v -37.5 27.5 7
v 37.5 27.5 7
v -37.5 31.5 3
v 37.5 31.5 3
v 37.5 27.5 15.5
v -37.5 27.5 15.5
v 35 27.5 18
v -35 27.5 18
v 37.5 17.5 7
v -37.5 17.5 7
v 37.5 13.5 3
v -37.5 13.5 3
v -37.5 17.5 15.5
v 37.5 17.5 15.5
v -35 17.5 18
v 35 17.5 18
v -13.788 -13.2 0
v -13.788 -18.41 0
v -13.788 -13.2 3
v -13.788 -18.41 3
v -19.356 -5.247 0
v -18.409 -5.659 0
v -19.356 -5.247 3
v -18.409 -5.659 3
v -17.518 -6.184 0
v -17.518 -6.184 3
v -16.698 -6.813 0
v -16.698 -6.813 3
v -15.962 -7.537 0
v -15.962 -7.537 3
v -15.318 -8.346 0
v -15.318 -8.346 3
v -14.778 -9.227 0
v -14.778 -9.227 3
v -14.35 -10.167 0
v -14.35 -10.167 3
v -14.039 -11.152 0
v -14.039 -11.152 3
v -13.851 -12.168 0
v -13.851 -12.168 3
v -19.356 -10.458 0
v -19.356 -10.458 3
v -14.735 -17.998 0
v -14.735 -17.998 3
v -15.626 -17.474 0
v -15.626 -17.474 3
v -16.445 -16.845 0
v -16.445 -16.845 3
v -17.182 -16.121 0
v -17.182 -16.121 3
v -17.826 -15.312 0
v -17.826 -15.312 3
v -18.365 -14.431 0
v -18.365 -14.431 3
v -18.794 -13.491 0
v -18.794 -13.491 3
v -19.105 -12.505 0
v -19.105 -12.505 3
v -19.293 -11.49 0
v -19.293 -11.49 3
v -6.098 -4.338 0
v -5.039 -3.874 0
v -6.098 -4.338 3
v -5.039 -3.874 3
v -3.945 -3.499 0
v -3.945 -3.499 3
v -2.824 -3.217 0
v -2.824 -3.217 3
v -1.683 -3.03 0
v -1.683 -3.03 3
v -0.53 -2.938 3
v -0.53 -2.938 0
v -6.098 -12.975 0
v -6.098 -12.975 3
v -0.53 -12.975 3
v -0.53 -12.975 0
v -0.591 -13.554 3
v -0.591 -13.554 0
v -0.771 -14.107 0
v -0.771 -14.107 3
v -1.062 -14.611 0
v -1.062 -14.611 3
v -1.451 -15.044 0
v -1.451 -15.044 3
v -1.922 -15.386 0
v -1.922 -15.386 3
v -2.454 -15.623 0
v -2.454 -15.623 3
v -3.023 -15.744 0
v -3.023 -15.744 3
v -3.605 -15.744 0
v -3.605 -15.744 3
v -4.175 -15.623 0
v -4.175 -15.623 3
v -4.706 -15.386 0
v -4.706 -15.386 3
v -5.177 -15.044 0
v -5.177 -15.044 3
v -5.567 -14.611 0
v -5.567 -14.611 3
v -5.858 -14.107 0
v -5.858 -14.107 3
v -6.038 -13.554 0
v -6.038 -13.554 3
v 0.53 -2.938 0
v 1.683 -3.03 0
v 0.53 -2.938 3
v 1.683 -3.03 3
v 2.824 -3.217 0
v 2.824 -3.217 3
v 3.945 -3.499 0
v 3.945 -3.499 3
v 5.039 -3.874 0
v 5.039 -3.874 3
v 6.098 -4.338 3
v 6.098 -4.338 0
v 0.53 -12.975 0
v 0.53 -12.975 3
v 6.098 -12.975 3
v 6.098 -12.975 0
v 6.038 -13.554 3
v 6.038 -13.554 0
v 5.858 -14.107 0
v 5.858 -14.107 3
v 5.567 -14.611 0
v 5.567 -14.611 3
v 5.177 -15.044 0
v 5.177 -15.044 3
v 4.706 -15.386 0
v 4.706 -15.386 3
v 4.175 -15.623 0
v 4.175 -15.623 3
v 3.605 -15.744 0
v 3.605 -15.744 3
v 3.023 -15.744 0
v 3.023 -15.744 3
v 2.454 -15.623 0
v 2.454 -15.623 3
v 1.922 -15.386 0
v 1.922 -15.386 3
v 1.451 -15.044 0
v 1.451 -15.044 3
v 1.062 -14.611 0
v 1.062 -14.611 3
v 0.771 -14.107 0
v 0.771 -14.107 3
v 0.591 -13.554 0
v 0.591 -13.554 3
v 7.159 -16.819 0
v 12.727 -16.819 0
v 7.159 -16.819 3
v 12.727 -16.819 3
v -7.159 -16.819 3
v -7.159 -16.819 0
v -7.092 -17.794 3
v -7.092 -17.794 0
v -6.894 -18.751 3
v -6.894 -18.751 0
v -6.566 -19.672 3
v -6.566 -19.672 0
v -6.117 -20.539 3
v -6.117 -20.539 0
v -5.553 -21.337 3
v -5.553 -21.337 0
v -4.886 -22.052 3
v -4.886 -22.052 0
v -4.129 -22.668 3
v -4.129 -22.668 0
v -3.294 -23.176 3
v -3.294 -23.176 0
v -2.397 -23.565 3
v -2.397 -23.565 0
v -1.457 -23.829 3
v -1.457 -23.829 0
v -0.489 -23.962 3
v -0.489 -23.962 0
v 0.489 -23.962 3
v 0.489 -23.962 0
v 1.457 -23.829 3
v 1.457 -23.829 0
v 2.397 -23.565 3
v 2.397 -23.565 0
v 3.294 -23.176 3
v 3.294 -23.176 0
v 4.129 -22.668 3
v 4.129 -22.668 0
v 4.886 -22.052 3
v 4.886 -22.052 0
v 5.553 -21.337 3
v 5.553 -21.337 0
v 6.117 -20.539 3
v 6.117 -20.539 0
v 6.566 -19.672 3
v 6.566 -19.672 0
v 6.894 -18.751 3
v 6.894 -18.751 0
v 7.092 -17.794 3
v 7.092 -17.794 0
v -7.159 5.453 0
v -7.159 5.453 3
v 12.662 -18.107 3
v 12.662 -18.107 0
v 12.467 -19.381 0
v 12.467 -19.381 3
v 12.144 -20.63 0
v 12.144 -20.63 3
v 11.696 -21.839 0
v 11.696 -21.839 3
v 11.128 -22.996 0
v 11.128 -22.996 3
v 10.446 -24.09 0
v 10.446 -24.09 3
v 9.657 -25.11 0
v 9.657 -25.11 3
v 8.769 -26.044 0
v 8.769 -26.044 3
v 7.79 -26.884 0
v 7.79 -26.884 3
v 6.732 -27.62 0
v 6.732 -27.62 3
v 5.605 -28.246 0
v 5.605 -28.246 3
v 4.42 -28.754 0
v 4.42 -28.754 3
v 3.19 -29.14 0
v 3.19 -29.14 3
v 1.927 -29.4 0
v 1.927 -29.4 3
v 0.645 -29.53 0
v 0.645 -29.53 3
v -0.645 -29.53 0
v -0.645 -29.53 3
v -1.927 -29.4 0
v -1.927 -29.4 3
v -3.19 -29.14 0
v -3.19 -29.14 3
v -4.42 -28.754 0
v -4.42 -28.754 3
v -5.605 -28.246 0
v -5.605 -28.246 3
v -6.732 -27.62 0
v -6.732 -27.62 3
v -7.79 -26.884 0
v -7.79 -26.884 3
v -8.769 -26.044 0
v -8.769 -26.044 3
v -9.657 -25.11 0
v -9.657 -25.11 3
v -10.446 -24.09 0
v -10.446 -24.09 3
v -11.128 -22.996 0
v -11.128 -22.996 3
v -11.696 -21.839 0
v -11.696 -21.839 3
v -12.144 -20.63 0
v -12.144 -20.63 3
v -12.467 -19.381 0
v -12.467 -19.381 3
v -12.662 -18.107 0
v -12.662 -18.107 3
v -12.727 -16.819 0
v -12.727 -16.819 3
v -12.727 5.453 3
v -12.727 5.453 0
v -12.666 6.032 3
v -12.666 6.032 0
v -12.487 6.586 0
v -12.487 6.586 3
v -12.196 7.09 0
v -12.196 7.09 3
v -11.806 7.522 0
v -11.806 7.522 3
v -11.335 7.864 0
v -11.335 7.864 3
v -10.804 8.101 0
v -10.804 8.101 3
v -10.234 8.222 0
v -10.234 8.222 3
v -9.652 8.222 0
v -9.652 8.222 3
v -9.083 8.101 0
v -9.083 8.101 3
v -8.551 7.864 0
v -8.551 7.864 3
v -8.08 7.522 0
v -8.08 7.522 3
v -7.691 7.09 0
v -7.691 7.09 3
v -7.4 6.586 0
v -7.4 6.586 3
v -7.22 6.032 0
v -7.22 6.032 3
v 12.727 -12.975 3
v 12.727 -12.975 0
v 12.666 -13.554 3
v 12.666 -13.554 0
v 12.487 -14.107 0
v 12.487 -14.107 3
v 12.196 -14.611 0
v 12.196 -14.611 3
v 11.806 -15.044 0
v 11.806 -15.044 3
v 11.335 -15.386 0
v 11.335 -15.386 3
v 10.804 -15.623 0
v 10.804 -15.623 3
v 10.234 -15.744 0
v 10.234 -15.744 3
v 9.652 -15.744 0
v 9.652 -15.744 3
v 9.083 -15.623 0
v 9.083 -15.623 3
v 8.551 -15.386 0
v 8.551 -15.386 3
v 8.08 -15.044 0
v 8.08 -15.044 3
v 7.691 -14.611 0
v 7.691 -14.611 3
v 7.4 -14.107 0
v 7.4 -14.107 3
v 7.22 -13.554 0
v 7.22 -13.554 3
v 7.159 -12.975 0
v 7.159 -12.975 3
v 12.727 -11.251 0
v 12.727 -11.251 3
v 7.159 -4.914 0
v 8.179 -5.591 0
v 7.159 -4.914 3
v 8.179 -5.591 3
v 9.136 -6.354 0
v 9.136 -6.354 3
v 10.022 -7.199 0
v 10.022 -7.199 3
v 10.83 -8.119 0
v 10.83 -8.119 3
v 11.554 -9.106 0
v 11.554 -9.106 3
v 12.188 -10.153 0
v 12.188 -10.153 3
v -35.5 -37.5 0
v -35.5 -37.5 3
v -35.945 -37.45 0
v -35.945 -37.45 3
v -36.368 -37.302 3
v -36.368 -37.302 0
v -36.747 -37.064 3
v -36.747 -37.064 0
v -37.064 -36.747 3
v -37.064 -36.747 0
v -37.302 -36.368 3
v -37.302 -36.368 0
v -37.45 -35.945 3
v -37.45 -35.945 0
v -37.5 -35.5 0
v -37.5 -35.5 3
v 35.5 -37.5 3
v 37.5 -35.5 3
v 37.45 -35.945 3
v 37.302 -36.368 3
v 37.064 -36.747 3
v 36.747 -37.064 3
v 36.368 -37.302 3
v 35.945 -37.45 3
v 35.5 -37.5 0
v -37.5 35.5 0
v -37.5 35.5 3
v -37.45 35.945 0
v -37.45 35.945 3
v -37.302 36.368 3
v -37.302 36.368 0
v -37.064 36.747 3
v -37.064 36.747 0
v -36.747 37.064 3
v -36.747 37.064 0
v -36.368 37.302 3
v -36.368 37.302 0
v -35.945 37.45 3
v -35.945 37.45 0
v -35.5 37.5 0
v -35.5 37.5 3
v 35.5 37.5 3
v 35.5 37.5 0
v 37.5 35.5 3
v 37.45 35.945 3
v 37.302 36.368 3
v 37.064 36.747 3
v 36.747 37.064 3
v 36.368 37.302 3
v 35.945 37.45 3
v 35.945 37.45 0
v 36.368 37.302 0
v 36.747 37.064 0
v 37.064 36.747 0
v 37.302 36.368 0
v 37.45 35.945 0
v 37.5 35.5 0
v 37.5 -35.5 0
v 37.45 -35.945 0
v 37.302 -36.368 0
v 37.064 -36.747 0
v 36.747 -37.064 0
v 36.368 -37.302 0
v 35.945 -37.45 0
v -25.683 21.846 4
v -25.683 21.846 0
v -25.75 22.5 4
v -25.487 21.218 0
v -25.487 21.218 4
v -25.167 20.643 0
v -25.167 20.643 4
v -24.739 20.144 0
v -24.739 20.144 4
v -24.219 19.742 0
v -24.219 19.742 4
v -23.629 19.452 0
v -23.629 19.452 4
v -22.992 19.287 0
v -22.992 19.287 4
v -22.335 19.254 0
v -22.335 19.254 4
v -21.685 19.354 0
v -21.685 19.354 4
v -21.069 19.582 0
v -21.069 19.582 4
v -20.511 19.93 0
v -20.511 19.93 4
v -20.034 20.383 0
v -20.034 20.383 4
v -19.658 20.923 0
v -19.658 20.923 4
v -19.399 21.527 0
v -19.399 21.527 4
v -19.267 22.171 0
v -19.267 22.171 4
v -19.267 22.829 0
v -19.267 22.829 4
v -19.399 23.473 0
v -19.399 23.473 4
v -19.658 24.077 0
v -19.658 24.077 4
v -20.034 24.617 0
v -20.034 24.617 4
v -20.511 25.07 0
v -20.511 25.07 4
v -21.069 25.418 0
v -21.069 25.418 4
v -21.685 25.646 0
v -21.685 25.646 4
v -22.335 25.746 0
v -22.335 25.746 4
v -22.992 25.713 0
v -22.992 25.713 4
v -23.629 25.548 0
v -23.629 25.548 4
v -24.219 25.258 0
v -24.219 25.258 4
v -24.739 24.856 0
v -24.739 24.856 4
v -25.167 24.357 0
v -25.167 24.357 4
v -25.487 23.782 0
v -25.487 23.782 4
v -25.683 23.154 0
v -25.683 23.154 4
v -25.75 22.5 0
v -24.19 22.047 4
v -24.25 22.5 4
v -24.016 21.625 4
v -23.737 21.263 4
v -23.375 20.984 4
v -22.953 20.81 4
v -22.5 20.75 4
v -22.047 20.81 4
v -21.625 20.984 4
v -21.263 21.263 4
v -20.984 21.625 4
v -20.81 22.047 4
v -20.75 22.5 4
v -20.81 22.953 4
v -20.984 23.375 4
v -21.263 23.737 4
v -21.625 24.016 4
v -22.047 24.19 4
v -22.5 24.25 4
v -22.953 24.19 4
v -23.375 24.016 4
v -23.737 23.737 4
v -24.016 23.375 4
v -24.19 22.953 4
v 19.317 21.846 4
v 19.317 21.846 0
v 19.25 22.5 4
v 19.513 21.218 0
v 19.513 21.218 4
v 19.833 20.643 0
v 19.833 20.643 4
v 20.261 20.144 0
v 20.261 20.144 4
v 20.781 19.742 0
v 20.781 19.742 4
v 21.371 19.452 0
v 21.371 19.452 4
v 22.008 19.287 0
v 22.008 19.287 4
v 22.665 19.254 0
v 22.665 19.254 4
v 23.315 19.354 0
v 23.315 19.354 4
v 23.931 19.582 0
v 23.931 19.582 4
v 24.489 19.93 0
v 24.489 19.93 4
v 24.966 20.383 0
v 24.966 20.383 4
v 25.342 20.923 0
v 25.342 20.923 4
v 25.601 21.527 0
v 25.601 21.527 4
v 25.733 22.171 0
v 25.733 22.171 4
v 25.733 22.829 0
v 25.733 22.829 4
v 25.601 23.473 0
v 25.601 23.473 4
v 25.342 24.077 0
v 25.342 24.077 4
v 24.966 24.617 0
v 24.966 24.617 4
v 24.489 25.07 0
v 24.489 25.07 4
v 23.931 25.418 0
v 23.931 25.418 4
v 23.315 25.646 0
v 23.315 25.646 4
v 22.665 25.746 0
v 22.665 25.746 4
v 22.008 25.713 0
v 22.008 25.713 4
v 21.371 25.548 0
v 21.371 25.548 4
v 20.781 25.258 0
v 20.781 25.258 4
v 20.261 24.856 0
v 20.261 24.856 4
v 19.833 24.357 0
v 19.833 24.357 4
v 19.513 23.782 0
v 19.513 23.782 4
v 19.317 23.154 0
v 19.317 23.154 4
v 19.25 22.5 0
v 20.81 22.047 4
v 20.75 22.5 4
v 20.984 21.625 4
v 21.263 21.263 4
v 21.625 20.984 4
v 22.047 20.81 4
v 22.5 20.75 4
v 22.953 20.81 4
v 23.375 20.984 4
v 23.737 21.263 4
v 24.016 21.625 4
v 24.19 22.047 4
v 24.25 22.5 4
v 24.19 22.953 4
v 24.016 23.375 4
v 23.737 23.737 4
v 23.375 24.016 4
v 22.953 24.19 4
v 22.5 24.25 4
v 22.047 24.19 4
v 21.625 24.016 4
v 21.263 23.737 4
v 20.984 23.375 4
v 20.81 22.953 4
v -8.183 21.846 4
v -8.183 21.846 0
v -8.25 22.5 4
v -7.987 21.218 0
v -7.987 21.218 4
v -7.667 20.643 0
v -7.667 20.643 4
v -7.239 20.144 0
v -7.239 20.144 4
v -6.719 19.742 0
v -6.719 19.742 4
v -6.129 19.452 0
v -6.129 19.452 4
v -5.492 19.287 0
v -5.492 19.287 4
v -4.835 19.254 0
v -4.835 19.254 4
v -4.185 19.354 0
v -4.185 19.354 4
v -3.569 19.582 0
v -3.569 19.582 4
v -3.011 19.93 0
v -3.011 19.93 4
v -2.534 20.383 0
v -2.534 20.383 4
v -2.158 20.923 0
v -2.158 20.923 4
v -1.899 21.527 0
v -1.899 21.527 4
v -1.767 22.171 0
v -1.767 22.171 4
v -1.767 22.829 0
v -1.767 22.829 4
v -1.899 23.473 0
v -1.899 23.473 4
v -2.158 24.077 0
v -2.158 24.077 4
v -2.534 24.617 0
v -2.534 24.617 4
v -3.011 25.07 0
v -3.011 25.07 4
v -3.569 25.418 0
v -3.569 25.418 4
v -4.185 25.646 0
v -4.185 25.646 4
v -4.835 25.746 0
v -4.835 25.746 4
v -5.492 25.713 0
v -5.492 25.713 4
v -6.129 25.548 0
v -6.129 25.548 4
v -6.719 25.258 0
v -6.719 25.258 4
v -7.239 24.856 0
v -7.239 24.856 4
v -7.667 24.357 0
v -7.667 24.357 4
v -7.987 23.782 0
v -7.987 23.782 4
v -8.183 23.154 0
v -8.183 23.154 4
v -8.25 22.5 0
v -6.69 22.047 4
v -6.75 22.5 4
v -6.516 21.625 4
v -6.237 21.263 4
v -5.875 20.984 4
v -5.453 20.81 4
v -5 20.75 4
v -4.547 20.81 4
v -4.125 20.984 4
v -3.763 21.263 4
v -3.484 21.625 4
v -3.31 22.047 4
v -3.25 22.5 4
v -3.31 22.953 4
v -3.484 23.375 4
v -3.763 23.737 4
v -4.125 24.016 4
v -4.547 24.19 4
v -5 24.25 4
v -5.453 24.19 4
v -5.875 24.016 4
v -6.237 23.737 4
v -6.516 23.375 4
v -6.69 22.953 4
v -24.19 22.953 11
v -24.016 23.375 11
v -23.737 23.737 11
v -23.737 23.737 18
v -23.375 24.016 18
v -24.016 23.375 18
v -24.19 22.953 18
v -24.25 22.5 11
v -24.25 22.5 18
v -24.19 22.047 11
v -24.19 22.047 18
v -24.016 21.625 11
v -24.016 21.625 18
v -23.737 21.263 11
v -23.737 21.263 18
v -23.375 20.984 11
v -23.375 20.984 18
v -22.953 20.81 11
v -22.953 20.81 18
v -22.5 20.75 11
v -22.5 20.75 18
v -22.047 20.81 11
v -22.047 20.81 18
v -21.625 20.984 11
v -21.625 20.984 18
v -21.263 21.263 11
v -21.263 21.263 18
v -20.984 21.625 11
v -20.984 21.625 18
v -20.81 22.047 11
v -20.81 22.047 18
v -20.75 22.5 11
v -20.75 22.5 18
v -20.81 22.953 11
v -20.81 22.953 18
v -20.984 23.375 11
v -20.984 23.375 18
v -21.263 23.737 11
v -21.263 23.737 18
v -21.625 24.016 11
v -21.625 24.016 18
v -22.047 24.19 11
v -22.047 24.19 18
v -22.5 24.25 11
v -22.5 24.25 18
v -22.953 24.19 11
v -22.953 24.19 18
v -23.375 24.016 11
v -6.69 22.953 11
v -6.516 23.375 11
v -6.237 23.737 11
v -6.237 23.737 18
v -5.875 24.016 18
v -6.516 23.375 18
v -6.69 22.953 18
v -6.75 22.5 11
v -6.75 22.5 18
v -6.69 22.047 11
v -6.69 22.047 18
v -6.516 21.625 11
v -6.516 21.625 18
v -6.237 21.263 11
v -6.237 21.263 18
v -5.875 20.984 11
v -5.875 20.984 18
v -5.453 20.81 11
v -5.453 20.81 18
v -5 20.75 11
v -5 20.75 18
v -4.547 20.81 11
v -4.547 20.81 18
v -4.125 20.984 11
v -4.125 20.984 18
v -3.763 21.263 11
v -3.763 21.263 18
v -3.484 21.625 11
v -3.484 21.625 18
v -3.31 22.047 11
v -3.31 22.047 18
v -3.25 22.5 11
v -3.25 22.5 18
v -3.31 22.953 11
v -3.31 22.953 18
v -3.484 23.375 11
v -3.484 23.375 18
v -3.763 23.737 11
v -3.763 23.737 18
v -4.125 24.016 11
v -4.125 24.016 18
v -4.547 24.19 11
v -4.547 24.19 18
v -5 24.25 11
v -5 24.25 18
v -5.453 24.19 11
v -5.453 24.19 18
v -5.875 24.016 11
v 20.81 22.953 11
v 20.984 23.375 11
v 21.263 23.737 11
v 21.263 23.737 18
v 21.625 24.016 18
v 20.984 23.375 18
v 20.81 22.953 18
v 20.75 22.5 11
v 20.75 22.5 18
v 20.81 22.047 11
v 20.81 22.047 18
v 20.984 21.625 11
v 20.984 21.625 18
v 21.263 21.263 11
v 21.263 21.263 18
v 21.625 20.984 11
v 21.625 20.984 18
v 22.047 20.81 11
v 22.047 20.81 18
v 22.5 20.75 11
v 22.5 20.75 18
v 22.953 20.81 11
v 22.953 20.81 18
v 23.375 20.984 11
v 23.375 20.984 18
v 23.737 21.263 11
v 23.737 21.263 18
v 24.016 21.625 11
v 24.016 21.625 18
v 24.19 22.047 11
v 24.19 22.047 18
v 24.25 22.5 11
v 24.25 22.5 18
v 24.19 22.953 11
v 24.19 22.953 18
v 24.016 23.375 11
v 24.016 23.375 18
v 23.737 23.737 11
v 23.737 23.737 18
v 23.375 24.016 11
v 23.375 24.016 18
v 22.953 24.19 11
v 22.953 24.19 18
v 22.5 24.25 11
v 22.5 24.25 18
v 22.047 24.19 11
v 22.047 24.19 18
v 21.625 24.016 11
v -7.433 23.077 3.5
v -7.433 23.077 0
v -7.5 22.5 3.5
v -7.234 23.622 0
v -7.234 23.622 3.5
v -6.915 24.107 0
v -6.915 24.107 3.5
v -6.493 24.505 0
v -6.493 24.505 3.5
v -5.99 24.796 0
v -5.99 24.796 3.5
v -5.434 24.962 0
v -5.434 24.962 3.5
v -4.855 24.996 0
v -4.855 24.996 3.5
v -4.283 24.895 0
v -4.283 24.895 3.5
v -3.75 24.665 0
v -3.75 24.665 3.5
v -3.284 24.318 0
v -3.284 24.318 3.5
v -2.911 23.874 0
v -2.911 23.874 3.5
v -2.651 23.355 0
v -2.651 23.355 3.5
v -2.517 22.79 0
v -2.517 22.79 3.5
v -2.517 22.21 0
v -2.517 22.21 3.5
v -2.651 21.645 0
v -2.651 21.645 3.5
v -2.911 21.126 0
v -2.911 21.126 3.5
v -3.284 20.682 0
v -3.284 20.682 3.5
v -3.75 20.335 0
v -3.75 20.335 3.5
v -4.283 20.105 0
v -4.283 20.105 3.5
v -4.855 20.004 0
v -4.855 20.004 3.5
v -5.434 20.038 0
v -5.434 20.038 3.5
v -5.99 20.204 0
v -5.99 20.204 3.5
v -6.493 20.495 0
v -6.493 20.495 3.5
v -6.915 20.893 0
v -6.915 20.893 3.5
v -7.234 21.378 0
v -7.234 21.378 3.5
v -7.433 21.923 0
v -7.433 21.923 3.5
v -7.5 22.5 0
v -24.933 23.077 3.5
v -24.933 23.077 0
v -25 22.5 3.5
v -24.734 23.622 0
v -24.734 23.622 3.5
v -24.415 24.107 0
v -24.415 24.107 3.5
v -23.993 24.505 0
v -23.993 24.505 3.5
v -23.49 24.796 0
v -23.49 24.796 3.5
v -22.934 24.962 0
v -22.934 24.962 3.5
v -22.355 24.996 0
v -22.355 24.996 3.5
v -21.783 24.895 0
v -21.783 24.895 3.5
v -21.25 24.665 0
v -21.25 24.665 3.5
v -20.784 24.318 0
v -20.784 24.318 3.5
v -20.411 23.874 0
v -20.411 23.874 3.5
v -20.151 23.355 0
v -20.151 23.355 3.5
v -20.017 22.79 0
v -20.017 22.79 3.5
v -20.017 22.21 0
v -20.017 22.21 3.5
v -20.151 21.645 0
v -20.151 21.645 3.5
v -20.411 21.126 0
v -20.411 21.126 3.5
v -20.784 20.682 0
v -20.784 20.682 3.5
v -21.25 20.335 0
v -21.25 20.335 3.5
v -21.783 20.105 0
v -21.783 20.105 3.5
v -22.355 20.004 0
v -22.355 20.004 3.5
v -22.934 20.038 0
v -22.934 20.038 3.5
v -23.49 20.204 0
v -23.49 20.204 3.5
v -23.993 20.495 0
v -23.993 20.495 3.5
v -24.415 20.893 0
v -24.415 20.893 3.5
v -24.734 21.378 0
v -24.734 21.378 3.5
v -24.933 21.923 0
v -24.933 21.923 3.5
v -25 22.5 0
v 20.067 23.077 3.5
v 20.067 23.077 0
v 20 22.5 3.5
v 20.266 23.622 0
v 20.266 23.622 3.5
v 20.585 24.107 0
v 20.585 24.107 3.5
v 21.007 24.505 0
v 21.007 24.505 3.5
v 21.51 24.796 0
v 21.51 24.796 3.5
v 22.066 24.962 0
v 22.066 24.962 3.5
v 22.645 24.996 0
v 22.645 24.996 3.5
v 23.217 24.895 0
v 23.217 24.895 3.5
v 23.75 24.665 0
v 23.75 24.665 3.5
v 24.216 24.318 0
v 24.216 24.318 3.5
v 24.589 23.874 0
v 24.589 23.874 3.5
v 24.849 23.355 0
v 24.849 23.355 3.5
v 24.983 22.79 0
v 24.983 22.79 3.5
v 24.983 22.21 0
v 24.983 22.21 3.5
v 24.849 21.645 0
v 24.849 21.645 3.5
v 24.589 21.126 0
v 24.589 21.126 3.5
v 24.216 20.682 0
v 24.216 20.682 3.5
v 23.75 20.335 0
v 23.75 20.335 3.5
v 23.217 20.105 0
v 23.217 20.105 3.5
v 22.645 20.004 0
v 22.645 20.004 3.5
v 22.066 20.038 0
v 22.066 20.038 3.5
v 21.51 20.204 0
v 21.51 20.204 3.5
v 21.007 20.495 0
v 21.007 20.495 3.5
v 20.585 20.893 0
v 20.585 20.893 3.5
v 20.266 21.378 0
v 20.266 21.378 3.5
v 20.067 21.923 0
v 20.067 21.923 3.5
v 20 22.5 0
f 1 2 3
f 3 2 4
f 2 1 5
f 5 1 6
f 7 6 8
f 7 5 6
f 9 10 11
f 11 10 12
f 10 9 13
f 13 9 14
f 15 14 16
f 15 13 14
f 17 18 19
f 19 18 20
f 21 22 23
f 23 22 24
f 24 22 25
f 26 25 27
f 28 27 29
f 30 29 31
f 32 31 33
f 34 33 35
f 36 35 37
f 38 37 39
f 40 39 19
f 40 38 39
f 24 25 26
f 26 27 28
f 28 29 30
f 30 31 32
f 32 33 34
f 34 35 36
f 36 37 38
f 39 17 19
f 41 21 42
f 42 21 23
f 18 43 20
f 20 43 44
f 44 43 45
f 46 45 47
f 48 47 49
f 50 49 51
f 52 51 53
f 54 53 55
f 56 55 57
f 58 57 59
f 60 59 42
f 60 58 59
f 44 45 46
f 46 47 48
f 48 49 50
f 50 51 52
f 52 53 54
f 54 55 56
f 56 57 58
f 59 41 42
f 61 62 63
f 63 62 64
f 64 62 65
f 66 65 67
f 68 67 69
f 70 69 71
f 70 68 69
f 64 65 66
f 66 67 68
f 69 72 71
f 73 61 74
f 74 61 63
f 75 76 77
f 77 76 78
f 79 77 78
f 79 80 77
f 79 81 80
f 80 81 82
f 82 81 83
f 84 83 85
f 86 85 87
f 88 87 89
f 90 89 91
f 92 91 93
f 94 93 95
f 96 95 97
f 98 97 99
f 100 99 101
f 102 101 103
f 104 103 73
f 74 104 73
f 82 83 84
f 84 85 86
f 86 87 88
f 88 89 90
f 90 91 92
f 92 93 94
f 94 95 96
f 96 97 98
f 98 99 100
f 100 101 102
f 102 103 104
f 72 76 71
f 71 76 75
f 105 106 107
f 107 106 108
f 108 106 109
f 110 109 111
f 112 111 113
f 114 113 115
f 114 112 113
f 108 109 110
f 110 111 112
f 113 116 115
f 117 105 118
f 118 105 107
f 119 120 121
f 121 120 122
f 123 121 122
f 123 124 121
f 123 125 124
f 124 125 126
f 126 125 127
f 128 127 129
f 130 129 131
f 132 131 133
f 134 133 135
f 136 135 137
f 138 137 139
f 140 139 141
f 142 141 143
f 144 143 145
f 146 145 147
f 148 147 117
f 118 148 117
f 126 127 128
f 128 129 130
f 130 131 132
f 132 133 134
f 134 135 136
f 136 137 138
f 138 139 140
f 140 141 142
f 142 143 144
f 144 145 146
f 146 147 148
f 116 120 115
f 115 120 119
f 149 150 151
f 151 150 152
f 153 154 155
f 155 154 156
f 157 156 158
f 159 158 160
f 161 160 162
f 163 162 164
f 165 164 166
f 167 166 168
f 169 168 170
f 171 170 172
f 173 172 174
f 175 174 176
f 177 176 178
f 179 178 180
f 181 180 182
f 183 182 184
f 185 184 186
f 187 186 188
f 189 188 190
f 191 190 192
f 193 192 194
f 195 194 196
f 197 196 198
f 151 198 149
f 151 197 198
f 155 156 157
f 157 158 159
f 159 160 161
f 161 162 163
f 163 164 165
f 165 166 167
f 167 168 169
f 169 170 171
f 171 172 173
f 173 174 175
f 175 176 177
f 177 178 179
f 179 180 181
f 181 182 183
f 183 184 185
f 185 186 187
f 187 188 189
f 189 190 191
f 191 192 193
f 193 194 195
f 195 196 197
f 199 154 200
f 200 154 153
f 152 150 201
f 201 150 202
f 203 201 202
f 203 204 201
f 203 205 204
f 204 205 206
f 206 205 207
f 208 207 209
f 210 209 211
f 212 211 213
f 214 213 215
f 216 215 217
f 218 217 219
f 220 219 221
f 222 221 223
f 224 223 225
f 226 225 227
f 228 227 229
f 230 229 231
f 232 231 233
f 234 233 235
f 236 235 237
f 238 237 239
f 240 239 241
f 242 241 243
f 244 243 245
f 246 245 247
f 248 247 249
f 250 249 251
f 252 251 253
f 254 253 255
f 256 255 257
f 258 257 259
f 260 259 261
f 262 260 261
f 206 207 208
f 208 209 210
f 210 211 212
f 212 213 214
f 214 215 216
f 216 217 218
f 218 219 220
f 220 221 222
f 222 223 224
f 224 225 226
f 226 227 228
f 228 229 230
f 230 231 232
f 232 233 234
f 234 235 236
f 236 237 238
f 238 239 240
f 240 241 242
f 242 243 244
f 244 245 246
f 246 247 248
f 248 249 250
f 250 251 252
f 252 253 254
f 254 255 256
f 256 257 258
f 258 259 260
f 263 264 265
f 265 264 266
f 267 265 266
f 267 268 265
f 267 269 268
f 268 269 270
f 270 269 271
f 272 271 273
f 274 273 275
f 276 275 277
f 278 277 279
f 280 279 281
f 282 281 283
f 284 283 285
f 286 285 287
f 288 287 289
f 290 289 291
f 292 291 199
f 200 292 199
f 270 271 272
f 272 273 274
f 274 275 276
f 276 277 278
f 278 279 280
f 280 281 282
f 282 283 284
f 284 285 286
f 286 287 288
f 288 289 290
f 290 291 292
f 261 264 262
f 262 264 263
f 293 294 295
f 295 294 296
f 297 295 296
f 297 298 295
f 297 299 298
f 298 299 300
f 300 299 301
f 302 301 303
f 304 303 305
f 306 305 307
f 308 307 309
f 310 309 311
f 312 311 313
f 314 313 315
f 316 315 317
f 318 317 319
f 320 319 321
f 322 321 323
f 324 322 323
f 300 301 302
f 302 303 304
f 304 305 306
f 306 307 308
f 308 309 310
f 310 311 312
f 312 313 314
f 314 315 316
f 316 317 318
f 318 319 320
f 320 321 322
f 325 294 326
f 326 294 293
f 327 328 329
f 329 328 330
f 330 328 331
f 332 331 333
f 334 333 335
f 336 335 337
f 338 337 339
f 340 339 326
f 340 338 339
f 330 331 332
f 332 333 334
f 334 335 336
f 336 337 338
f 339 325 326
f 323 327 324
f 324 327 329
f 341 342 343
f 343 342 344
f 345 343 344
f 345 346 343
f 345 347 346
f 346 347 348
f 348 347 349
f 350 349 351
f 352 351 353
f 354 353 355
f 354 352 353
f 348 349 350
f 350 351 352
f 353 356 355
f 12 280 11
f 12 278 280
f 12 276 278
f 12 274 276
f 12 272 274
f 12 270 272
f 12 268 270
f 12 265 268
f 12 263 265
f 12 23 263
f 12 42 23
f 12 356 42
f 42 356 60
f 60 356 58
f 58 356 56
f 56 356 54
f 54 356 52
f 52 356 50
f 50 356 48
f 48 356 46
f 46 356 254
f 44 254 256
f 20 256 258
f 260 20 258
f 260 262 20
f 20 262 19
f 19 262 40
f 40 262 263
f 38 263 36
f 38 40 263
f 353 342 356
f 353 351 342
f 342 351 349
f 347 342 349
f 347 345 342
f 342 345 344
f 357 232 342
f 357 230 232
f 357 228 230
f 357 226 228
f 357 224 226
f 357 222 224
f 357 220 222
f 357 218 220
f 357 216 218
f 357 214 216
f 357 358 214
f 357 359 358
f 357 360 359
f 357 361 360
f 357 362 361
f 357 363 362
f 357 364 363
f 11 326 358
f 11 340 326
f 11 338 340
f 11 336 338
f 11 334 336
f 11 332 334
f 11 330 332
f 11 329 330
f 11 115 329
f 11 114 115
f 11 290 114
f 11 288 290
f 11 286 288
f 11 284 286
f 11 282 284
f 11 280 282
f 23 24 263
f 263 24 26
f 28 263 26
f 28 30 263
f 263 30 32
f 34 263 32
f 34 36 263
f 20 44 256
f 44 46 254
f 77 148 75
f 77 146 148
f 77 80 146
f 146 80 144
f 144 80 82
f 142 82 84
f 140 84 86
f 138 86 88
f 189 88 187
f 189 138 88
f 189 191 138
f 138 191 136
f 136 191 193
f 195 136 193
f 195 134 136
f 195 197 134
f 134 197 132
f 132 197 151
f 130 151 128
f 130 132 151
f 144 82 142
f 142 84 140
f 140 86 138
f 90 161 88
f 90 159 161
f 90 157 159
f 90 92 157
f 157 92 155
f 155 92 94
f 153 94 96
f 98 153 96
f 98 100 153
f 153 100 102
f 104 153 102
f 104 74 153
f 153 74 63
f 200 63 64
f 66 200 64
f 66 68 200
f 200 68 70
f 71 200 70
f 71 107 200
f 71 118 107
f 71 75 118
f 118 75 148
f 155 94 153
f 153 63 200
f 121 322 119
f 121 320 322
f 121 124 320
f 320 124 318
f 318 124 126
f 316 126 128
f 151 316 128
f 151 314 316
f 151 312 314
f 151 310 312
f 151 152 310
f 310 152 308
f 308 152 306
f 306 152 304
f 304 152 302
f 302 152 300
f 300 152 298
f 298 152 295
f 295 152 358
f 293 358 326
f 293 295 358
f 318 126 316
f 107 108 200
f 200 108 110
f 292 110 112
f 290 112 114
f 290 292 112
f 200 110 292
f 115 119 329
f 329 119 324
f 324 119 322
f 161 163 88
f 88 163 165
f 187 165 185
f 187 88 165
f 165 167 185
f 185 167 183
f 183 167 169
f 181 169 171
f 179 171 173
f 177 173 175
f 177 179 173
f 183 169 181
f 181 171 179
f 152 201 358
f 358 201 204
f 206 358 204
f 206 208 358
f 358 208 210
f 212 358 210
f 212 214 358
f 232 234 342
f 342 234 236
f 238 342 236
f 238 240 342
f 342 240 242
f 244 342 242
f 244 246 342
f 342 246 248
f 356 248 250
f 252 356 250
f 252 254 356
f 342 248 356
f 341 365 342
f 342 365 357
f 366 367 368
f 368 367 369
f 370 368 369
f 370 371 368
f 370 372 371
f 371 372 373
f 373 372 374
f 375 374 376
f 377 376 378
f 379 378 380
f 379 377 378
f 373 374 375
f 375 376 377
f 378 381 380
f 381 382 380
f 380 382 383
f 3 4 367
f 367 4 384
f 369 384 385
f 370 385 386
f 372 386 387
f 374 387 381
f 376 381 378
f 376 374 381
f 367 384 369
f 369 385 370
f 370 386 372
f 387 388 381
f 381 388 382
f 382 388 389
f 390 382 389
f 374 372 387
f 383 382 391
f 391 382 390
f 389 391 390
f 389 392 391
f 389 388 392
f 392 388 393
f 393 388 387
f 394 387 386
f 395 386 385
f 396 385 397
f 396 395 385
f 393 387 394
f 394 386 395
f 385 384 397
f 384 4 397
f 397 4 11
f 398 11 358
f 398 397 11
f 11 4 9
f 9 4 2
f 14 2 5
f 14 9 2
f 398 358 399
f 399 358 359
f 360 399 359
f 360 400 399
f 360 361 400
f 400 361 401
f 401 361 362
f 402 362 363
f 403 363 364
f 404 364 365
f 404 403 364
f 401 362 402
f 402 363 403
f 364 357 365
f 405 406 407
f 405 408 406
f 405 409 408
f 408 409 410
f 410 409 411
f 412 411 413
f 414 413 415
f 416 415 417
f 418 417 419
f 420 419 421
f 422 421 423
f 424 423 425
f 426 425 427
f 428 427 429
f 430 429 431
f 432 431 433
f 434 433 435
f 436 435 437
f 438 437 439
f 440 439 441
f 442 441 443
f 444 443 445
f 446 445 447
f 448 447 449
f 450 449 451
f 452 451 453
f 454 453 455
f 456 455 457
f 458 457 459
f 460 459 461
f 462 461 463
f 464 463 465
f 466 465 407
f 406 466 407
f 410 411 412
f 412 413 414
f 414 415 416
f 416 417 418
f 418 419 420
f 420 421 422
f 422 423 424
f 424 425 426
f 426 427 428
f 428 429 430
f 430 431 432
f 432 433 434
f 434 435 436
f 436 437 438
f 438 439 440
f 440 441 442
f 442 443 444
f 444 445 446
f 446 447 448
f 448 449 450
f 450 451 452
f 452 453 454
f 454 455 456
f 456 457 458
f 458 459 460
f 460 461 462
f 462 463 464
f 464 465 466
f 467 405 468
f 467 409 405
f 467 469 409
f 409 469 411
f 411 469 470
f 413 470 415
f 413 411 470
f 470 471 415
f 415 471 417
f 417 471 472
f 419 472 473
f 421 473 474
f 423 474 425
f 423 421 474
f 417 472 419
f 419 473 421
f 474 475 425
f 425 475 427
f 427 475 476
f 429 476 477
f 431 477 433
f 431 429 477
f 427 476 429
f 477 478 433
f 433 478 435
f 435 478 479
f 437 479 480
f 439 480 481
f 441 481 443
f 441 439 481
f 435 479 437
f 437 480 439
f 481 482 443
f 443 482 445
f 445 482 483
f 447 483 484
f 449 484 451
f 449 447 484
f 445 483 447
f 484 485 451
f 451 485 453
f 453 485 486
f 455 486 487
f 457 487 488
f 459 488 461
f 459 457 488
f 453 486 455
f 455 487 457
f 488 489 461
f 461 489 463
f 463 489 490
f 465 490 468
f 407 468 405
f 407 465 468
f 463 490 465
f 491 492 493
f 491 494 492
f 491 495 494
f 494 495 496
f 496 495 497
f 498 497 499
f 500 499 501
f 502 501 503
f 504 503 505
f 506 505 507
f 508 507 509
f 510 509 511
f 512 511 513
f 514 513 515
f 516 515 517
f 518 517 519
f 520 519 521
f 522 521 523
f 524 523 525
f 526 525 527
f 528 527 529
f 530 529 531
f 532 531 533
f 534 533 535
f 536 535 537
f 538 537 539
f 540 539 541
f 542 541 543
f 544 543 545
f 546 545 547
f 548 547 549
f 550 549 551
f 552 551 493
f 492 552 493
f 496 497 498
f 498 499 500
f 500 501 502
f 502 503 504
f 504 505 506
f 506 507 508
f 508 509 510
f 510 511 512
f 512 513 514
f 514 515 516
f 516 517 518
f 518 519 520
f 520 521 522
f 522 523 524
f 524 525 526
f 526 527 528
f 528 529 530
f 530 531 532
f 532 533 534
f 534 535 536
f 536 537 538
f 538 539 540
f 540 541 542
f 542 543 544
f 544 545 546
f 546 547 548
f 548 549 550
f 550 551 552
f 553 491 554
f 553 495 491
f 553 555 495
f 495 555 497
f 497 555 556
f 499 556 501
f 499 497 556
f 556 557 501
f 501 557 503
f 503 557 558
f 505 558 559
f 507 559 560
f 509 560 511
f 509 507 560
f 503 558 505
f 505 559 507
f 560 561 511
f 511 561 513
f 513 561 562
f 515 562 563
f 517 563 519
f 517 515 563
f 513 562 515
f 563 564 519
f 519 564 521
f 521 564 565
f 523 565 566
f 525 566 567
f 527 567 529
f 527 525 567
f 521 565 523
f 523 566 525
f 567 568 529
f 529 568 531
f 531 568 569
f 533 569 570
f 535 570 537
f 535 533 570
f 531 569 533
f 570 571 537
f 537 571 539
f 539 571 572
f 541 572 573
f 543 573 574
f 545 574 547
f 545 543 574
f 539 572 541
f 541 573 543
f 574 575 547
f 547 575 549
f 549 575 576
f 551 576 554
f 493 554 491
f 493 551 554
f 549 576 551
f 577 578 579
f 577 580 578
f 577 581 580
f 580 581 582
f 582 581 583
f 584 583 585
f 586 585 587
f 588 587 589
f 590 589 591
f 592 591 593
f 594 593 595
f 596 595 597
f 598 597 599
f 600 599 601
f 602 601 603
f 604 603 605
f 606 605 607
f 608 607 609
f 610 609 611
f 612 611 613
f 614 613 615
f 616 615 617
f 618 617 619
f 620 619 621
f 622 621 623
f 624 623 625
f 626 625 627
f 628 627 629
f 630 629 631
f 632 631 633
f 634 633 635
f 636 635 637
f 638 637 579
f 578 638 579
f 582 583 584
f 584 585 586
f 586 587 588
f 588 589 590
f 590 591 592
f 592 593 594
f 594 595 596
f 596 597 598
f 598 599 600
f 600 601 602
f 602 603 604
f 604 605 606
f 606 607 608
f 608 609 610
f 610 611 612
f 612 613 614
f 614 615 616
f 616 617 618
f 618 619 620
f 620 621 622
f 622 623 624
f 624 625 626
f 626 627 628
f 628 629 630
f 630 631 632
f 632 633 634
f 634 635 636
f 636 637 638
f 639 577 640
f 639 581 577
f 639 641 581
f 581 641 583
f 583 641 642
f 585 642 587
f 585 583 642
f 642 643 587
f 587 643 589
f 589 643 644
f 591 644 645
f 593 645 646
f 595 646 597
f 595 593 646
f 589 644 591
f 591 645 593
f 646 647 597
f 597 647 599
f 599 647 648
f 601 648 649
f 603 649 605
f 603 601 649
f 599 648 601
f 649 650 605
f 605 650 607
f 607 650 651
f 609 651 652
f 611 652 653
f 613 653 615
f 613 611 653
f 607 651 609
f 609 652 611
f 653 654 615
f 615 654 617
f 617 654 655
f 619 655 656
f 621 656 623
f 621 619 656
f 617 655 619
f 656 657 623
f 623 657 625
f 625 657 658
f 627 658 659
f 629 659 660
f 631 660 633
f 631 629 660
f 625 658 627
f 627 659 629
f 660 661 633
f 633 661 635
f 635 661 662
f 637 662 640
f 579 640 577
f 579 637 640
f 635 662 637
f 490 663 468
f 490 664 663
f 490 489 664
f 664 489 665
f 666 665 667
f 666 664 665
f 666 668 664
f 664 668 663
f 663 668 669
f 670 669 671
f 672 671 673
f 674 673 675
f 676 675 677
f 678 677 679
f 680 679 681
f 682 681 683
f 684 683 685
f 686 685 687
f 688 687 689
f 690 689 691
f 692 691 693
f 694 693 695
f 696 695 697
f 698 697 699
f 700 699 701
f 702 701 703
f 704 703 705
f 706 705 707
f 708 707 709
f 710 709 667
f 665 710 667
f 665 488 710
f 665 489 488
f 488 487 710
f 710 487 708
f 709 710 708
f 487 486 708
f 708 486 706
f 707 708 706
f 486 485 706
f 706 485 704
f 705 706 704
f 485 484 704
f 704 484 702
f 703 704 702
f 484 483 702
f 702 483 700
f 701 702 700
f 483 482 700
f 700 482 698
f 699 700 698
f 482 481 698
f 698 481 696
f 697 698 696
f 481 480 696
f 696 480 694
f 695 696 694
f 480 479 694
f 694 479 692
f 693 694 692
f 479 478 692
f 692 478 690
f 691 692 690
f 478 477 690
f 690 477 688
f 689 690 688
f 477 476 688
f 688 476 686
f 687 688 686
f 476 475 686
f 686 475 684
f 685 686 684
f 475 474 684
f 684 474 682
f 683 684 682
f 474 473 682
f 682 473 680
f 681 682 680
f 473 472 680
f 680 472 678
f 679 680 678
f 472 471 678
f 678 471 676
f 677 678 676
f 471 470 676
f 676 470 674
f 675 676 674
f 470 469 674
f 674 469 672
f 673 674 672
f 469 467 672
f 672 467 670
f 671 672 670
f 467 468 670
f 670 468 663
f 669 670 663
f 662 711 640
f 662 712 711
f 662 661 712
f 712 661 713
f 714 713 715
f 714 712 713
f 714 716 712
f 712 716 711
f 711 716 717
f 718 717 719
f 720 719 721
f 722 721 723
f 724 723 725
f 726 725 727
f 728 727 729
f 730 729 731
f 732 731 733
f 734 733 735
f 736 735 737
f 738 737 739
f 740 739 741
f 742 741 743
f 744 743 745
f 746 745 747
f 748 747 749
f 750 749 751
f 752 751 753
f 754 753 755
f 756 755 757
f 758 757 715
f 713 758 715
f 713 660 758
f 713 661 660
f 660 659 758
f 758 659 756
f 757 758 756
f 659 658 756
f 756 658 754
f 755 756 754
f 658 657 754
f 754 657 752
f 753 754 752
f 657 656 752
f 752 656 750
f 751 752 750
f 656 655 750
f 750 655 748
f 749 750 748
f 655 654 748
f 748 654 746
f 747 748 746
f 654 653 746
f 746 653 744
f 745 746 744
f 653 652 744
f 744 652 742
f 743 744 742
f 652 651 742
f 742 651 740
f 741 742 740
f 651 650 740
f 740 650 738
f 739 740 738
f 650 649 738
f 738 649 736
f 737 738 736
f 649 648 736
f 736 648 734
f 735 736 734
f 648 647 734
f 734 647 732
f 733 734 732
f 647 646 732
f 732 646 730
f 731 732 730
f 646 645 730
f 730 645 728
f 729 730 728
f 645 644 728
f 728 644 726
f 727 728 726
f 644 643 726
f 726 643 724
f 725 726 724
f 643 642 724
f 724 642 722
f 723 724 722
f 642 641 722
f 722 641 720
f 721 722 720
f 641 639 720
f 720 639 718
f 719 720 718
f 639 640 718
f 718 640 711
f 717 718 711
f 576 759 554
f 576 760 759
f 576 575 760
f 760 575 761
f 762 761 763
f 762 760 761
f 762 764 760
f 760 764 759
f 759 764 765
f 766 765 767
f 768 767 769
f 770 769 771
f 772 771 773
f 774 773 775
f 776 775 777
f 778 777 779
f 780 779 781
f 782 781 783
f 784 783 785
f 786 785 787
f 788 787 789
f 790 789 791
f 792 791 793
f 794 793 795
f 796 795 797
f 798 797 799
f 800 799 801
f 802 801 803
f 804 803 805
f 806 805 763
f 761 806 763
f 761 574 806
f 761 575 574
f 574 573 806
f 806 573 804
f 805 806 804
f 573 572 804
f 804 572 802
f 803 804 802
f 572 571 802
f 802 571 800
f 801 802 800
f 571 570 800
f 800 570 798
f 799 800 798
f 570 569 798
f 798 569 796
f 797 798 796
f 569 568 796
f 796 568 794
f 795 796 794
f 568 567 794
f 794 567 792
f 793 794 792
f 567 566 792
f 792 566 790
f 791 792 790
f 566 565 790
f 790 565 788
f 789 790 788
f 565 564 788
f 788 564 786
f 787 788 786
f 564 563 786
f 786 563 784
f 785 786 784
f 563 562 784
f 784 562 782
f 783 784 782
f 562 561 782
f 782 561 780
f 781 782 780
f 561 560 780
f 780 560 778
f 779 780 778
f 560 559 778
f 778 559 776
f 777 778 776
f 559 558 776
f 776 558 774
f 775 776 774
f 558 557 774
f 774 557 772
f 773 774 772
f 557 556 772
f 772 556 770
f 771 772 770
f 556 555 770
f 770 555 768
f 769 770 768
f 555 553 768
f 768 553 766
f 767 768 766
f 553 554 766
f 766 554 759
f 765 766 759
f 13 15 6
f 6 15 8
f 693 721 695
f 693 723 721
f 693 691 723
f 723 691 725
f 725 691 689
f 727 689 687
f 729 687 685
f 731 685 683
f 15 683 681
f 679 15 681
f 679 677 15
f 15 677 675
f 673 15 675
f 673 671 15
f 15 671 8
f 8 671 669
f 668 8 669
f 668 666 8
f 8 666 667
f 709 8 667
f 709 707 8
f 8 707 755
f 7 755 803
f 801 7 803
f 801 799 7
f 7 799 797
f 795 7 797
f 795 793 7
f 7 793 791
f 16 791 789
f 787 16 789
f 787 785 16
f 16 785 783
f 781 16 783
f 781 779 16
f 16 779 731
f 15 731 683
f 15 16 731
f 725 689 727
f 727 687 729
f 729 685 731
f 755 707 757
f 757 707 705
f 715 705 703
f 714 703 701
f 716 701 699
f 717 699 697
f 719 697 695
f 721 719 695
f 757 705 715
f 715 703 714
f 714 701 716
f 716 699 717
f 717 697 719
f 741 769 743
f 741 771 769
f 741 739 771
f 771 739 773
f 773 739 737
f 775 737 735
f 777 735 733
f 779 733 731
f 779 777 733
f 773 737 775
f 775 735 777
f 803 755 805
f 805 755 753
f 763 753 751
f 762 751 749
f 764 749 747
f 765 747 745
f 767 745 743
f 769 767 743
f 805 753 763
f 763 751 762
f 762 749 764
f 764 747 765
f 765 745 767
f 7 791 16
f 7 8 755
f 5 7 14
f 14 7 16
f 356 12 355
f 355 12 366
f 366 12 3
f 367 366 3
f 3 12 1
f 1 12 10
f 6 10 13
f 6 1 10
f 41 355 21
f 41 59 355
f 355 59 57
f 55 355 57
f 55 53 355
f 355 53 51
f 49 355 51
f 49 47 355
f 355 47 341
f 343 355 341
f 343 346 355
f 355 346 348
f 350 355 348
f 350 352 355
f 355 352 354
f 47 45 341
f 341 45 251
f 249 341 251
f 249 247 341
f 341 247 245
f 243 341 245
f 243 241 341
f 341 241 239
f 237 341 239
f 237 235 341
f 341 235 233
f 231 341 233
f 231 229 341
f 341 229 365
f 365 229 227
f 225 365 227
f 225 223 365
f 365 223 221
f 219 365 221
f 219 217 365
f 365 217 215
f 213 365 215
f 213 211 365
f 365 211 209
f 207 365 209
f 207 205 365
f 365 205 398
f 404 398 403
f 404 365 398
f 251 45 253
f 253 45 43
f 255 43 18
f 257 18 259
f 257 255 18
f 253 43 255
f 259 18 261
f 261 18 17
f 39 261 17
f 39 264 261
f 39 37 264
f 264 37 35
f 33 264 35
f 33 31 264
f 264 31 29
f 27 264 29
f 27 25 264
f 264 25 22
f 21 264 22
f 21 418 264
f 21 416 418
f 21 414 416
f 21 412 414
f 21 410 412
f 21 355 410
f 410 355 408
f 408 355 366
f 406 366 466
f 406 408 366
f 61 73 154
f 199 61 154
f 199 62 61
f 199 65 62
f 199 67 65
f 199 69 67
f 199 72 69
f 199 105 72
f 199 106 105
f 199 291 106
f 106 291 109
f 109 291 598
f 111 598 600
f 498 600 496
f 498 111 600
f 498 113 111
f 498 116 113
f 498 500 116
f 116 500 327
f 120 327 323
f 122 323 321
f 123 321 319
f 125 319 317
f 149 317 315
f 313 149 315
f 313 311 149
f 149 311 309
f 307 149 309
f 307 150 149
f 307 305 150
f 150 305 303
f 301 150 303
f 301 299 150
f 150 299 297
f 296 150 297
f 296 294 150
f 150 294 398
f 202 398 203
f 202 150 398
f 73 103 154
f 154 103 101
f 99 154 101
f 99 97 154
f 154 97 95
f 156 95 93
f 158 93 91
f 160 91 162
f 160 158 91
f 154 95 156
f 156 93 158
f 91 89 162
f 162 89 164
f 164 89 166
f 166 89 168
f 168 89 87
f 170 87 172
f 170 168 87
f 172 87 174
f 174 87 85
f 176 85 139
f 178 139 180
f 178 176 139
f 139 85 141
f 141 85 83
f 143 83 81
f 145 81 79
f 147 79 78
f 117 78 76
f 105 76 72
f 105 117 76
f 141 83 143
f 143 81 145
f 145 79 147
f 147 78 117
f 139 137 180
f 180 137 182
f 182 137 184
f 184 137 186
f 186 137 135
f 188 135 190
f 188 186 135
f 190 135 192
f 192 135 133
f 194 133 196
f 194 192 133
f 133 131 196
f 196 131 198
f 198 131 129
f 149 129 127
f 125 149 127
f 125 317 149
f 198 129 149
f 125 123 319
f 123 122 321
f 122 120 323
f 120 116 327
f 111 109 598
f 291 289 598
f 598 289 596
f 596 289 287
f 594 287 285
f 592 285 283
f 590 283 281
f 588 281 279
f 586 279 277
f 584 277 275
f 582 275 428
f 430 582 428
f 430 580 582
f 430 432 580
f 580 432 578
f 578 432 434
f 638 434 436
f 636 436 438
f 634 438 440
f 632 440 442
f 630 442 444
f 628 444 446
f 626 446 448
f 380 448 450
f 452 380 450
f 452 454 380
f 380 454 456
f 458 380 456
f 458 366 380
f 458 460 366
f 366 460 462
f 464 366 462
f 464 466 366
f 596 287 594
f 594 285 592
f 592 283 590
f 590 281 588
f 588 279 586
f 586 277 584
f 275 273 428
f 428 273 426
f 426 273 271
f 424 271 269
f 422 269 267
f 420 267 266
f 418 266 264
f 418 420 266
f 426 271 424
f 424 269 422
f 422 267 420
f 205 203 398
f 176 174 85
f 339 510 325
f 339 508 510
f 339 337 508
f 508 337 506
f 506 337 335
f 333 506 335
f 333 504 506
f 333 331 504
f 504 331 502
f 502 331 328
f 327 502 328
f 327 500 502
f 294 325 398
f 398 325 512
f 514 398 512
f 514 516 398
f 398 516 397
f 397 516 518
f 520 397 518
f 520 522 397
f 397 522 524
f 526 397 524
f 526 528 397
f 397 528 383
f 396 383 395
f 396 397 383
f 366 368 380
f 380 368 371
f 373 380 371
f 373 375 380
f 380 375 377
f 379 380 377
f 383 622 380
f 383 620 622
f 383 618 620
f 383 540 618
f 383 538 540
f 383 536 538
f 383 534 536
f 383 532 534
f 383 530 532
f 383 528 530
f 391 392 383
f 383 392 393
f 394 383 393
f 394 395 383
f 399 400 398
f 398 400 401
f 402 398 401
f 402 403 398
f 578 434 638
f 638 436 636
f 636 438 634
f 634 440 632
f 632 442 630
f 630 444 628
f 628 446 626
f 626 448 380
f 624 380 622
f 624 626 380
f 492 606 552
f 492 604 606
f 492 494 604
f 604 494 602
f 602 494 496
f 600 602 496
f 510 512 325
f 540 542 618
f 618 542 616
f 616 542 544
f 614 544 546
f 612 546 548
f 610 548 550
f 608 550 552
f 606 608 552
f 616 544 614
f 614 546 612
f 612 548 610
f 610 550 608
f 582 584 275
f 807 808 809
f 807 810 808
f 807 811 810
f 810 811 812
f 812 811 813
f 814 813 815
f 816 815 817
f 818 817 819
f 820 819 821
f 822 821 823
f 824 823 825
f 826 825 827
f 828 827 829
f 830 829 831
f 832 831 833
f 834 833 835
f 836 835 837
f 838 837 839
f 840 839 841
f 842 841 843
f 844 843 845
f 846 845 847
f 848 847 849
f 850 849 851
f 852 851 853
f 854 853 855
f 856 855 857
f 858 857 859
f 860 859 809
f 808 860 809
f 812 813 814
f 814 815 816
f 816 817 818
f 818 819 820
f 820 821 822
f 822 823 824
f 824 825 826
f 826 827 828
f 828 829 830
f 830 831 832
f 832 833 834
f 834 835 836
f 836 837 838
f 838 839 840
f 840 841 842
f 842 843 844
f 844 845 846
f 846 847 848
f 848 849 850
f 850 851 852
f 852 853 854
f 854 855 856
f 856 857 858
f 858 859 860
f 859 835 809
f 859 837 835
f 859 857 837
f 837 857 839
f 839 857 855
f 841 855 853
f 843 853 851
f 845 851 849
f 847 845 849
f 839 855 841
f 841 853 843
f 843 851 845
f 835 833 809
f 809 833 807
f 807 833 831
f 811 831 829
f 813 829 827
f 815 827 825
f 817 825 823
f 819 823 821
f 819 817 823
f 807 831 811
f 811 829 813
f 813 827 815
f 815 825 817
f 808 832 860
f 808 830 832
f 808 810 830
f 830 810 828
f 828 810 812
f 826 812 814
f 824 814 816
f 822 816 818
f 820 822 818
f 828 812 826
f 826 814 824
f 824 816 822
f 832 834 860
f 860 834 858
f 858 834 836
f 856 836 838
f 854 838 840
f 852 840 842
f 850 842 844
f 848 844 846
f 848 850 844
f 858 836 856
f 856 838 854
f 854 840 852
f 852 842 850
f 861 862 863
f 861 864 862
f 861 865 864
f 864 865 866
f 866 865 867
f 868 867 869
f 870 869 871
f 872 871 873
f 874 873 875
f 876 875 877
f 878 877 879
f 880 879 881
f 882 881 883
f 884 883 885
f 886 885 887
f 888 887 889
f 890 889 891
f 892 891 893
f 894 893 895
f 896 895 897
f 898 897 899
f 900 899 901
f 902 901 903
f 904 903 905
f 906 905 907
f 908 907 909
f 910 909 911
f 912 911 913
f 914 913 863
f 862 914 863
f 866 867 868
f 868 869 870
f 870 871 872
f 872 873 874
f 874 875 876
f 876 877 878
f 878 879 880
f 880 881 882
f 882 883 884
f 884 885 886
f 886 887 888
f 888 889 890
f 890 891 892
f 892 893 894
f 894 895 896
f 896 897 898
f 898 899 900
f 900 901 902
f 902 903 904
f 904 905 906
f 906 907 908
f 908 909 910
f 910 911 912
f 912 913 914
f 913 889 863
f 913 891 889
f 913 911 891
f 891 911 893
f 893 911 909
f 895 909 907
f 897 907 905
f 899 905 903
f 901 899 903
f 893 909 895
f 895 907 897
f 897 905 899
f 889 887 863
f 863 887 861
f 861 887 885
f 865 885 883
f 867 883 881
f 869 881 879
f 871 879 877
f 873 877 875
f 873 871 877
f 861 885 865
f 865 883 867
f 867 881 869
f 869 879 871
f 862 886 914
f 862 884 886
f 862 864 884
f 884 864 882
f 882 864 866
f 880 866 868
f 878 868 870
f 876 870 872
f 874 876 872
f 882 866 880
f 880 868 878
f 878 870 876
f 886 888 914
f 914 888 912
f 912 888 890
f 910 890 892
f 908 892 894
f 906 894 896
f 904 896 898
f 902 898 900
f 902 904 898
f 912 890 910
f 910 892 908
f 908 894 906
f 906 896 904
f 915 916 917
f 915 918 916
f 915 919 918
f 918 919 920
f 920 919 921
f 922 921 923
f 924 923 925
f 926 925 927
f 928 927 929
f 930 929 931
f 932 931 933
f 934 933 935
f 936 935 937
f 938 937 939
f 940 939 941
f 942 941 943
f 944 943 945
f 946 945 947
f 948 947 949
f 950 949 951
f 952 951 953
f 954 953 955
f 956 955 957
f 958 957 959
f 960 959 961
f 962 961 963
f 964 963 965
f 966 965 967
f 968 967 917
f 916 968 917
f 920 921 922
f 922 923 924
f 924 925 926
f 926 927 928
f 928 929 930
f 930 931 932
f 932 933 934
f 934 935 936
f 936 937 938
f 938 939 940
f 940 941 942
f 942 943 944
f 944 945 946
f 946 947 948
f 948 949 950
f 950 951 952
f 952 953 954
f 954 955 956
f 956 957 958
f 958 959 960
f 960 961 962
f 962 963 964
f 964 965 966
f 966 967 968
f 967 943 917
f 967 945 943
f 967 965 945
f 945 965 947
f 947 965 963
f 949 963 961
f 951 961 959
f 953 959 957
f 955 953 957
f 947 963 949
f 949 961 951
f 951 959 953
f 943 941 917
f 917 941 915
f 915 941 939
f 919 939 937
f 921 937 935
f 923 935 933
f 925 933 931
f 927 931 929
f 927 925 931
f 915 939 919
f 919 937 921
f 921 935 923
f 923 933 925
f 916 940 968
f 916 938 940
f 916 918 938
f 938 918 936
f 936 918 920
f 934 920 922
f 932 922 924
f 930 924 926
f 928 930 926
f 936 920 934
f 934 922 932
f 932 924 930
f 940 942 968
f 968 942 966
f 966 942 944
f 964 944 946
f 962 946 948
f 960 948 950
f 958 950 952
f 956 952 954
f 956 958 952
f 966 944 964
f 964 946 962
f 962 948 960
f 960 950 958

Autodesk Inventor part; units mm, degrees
ref_plane "YZ Plane" through (0, 0, 0) normal (1, 0, 0) x (0, 1, 0)
ref_plane "XZ Plane" through (0, 0, 0) normal (0, 1, 0) x (-1, 0, 0)
ref_plane "XY Plane" through (0, 0, 0) normal (0, 0, 1) x (1, 0, 0)
sketch "Sketch1" plane through (0, 0, 0) normal (0, 0, 1) x (1, 0, 0)
  line L0 (-52.5, 0) -> (52.5, 0) projected
  line L1 (0, -52.5) -> (0, 52.5) projected
  line L2 (-37.5, -37.5) -> (37.5, -37.5)
  line L3 (37.5, -37.5) -> (37.5, 37.5)
  line L4 (37.5, 37.5) -> (-37.5, 37.5)
  line L5 (-37.5, 37.5) -> (-37.5, -37.5)
  line L6 (-37.5, -37.5) -> (37.5, 37.5) construction
  line L7 (37.5, -37.5) -> (-37.5, 37.5) construction
  point P0 (0, 0)
  dimension "d0" = 75
  dimension "d1" = 75
extrude "Extrusion1" add sketch "Sketch1" along normal blind 3
sketch "Sketch2" plane through (0, 0, 3) normal (0, 0, 1) x (1, 0, 0)
  line L0 (37.5, -37.5) -> (37.5, 37.5) projected
  line L1 (37.5, 37.5) -> (-37.5, 37.5) projected
  line L2 (37.5, 17.5) -> (37.5, 27.5)
  line L3 (37.5, 27.5) -> (-37.5, 27.5)
  line L4 (-37.5, 27.5) -> (-37.5, 17.5)
  line L5 (-37.5, 17.5) -> (37.5, 17.5)
  point P0 (0, 0)
  dimension "d4" = 10
  dimension "d5" = 10
extrude "Extrusion2" add sketch "Sketch2" along normal blind 15
chamfer "Chamfer1" distance 2.5 angle 45 2 edges at (37.5, 22.5, 18) (-37.5, 22.5, 18)
sketch "Sketch3" plane through (0, 0, 18) normal (0, 0, 1) x (1, 0, 0)
  line L0 (-35, 17.5) -> (-35, 27.5) projected
  line L1 (35, 27.5) -> (35, 17.5) projected
  line L2 (-35, 22.5) -> (35, 22.5) construction
  circle A0 centre (-5, 22.5) radius 1.75
  circle A1 centre (-22.5, 22.5) radius 1.75
  line L3 (0, -52.5) -> (0, 52.5) projected
  circle A2 centre (22.5, 22.5) radius 1.75
  point P0 (0, 0)
  dimension "d11" = 45
  dimension "d12" = 17.5
  dimension "d13" = 5
  dimension "d14" = 3.5
extrude "Extrusion3" cut sketch "Sketch3" against normal through all
sketch "Sketch4" plane through (0, 0, 0) normal (0, 0, -1) x (-1, 0, 0)
  circle A0 centre (22.5, 22.5) radius 1.75 projected
  circle A1 centre (5, 22.5) radius 1.75 projected
  circle A2 centre (-22.5, 22.5) radius 1.75 projected
  circle A3 centre (-22.5, 22.5) radius 3.25
  circle A4 centre (5, 22.5) radius 3.25
  circle A5 centre (22.5, 22.5) radius 3.25
  point P0 (0, 0)
  dimension "d17" = 6.5
extrude "Extrusion4" cut sketch "Sketch4" against normal blind 4
fillet "Fillet1" radius 2 4 edges at (37.5, -37.5, 1.5) (37.5, 37.5, 1.5) (-37.5, 37.5, 1.5) (-37.5, -37.5, 1.5)
sketch "Sketch5" plane through (0, 0, 3) normal (0, 0, 1) x (1, 0, 0)
  line L0 (0, -52.9971) -> (0, 52.5828) projected
  line L1 (7.5616, -15.7589) -> (7.5616, -16.8195) construction
  line L2 (7.1591, -15.7589) -> (12.7273, -15.7589)
  arc A0 (7.1591, -12.9748) -> (12.7273, -12.9748) centre (9.9432, -12.9748) ccw
  line L3 (0, -16.8195) -> (12.7273, -16.8195) construction
  arc A1 (0.5303, -12.9748) -> (6.0985, -12.9748) centre (3.3144, -12.9748) ccw
  line L4 (0, -29.5467) -> (12.7273, -29.5467) construction
  arc A2 (-7.1591, -16.8195) -> (7.1591, -16.8195) centre (0, -16.8195) ccw
  circle A3 centre (0, -16.8195) radius 7.1591 construction
  line L5 (0, -12.75) -> (0, 20.5)
  arc A4 (-12.7273, -16.8195) -> (12.7273, -16.8195) centre (0, -16.8195) ccw
  circle A5 centre (0, -16.8195) radius 12.7273 construction
  line L6 (7.1591, -16.8195) -> (12.7273, -16.8195)
  line L7 (-12.7273, -16.8195) -> (-12.7273, 5.4533)
  line L8 (-7.1591, -16.8195) -> (-7.1591, 5.4533)
  arc A6 (-7.1591, 5.4533) -> (-12.7273, 5.4533) centre (-9.9432, 5.4533) ccw
  line L9 (-6.0985, -9.3431) -> (-7.1591, -9.3431) construction
  line L10 (0.5303, -9.3431) -> (-0.5303, -9.3431) construction
  arc A7 (-0.5303, -4.1032) -> (-6.0985, -5.6484) centre (0, -16.8195) ccw
  arc A8 (-0.5303, -2.9376) -> (-6.0985, -4.3376) centre (0, -16.8195) ccw
  line L11 (6.0985, -2.9274) -> (6.0985, -15.7589)
  line L12 (7.1591, -2.9274) -> (7.1591, -15.7589)
  line L13 (12.7273, -15.7589) -> (12.7273, -2.9274)
  line L14 (12.7273, -2.9274) -> (7.1591, -2.9274)
  arc A9 (12.7273, -11.2513) -> (7.1591, -4.9142) centre (0, -16.8195) ccw
  line L15 (7.1591, -9.3431) -> (6.0985, -9.3431) construction
  line L16 (0.5303, -2.9274) -> (6.0985, -2.9274)
  line L17 (6.0985, -15.7589) -> (0.5303, -15.7589)
  arc A10 (6.0985, -5.6484) -> (0.5303, -4.1032) centre (0, -16.8195) ccw
  arc A11 (6.0985, -4.3376) -> (0.5303, -2.9376) centre (0, -16.8195) ccw
  arc A12 (12.7273, -11.2513) -> (-7.1591, -4.9142) centre (0, -16.8195) ccw construction
  line L18 (12.7273, -2.9274) -> (-7.1591, -2.9274) construction
  line L19 (0.5303, -15.7589) -> (0.5303, -2.9274)
  line L20 (-6.0985, -2.9274) -> (-0.5303, -2.9274)
  line L21 (-0.5303, -15.7589) -> (-6.0985, -15.7589)
  line L22 (-6.0985, -15.7589) -> (-6.0985, -2.9274)
  line L23 (-0.5303, -2.9274) -> (-0.5303, -15.7589)
  line L24 (-27.7979, -16.8195) -> (15.0178, -16.8195)
  line L25 (-6.0172, -28.1735) -> (-24.2274, -21.5455) construction
  line L26 (-13.7879, -7.274) -> (-12.7273, -7.274) construction
  line L27 (-13.7879, -7.274) -> (-19.3561, -5.2474) construction
  line L28 (-13.7879, -18.4104) -> (-13.7879, -7.274) construction
  line L29 (-13.7879, -18.4104) -> (-13.7879, -13.1995)
  line L30 (-19.3561, -10.4582) -> (-19.3561, -5.2474)
  arc A13 (-13.7879, -13.1995) -> (-19.3561, -5.2474) centre (-22.2504, -13.1995) ccw
  line L31 (-19.3561, -5.2474) -> (-19.3561, -16.3837) construction
  line L32 (-19.3561, -16.3837) -> (-13.7879, -18.4104) construction
  arc A14 (-19.3561, -10.4582) -> (-13.7879, -18.4104) centre (-10.8935, -10.4582) ccw
  arc A15 (-6.0985, -12.9748) -> (-0.5303, -12.9748) centre (-3.3144, -12.9748) ccw
  point P0 (0, 0)
  point P1 (0, 0)
  point P2 (12.683, -15.7589)
  point P3 (7.1591, -6.2966)
  dimension "d21" = 14.3182
  dimension "d22" = 5.5682
  dimension "d23" = 22.2727
  dimension "d24" = 0
  dimension "d25" = 5.5682
  dimension "d26" = 11.1364
  dimension "d27" = 1.5909
  dimension "d28" = 160
  dimension "d29" = 5.5682
  dimension "d30" = 1.0606
  dimension "d31" = 5.5682
  dimension "d32" = 32.0833
  dimension "d33" = 35
extrude "ext_cut_logo" cut sketch "Sketch5" against normal through all contours A4 L24 A2 L0 | L29 A14 L24 | L24 A14 L30 A13 L29 | L0 A2 L6 A4 | L7 A6 L8 L24 | A0 L12 A9 L13 | L19 A10 L11 A1 | L19 A11 L11 A10 | L23 A15 L22 A7 | A7 L22 A8 L23
sketch "Sketch6" plane through (0, 0, 0) normal (0, 0, -1) x (-1, 0, 0)
  circle A0 centre (22.5, 22.5) radius 3.25 projected
  circle A1 centre (-22.5, 22.5) radius 3.25 projected
  circle A2 centre (5, 22.5) radius 3.25 projected
  circle A3 centre (-22.5, 22.5) radius 2.5
  circle A4 centre (5, 22.5) radius 2.5
  circle A5 centre (22.5, 22.5) radius 2.5
  point P0 (0, 0)
  dimension "d36" = 5
extrude "PRINT_support" add sketch "Sketch6" against normal blind 3.5 contours A3 | A4 | A5
chamfer "Chamfer2" distance 4 angle 45 2 edges at (0, 17.5, 3) (0, 27.5, 3)
equation "\"d21\" = 0.409091 * d33"
equation "\"d22\" = d31"
equation "\"d23\" = 0.636364 * d33"
equation "\"d25\" = d31"
equation "\"d26\" = 0.318182 * d33"
equation "\"d27\" = 0.0454545 * d33"
equation "\"d29\" = d31"
properties part number "misc_hand_stand2"
